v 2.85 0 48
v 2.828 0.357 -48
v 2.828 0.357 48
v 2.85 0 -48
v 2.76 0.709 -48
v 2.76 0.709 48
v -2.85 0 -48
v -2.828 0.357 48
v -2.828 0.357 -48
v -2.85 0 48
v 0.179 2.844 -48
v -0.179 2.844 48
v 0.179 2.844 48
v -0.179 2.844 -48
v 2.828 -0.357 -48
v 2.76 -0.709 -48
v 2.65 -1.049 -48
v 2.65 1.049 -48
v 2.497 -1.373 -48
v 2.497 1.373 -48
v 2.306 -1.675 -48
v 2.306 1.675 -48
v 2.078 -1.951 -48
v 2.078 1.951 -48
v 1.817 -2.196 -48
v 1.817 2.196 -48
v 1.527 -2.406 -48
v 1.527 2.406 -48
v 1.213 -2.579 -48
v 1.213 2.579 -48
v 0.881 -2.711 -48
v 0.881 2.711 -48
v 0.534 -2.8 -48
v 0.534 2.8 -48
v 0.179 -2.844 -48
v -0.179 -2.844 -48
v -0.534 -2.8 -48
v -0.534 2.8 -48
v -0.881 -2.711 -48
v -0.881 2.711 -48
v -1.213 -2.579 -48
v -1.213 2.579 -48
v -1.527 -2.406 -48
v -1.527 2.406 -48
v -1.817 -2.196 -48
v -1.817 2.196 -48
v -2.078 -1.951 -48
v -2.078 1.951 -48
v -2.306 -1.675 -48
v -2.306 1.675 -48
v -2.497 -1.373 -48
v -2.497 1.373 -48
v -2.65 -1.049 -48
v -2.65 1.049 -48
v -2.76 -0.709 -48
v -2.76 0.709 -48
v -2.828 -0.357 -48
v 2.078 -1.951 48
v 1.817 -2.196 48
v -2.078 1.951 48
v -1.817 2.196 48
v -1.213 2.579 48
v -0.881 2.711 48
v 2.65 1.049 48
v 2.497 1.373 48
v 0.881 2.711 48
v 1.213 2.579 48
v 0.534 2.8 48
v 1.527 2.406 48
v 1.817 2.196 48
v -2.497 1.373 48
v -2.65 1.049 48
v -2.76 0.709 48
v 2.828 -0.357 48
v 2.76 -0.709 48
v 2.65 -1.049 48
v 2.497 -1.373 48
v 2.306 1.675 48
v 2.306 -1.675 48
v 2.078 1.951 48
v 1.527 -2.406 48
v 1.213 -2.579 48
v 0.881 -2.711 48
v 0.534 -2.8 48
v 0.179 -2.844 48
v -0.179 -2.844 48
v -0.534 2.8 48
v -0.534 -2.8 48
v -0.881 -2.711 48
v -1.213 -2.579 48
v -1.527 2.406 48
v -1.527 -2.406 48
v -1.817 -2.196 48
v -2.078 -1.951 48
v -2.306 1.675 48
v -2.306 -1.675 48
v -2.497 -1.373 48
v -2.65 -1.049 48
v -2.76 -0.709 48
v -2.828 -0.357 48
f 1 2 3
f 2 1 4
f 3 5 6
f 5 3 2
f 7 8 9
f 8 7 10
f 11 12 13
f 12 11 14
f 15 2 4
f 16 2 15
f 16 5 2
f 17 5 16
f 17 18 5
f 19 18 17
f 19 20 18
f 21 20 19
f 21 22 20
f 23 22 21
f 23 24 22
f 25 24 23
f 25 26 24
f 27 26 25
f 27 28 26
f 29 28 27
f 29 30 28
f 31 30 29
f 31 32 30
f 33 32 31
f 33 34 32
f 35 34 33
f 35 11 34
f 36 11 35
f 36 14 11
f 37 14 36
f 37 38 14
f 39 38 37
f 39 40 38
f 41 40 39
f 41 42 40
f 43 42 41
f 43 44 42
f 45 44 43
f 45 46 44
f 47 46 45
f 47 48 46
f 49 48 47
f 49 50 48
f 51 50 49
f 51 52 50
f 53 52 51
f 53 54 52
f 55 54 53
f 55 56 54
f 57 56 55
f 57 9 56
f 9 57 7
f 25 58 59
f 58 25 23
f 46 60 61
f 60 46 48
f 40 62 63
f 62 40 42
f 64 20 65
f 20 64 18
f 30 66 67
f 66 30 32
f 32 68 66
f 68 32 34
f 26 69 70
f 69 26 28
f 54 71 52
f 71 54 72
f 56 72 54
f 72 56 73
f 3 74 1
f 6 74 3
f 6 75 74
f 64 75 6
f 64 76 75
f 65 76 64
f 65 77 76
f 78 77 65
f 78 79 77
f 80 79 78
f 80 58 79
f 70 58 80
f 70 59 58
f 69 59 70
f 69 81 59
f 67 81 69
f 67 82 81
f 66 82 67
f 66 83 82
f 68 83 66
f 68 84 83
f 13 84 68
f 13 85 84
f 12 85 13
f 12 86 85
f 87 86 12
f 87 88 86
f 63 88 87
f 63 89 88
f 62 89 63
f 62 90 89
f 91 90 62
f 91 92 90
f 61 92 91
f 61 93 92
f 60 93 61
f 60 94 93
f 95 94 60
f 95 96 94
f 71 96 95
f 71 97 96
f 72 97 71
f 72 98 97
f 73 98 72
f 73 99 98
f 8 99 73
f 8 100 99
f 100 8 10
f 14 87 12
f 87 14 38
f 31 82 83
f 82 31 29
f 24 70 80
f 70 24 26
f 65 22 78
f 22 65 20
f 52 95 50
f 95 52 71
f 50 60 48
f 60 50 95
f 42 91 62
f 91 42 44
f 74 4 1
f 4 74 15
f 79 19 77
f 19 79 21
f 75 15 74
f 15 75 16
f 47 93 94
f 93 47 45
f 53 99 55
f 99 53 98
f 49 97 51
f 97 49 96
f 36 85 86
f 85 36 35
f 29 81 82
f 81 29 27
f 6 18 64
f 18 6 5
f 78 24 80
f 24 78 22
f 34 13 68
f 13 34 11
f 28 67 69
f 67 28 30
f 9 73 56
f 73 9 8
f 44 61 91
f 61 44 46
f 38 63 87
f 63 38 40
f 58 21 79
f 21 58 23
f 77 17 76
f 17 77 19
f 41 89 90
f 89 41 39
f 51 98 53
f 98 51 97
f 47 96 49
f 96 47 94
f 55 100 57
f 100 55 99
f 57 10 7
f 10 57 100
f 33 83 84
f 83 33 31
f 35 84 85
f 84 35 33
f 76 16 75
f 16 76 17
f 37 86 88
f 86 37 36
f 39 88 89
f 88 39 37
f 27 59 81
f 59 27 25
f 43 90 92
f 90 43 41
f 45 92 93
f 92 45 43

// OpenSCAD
$fn = 50;


difference() {
	union() {
		translate(v = [0, 0, -48.0000000000]) {
			cylinder(h = 96, r = 2.8500000000);
		}
	}
	union() {
		translate(v = [0, 0, -100.0000000000]) {
			cylinder(h = 200, r = 0);
		}
	}
}
